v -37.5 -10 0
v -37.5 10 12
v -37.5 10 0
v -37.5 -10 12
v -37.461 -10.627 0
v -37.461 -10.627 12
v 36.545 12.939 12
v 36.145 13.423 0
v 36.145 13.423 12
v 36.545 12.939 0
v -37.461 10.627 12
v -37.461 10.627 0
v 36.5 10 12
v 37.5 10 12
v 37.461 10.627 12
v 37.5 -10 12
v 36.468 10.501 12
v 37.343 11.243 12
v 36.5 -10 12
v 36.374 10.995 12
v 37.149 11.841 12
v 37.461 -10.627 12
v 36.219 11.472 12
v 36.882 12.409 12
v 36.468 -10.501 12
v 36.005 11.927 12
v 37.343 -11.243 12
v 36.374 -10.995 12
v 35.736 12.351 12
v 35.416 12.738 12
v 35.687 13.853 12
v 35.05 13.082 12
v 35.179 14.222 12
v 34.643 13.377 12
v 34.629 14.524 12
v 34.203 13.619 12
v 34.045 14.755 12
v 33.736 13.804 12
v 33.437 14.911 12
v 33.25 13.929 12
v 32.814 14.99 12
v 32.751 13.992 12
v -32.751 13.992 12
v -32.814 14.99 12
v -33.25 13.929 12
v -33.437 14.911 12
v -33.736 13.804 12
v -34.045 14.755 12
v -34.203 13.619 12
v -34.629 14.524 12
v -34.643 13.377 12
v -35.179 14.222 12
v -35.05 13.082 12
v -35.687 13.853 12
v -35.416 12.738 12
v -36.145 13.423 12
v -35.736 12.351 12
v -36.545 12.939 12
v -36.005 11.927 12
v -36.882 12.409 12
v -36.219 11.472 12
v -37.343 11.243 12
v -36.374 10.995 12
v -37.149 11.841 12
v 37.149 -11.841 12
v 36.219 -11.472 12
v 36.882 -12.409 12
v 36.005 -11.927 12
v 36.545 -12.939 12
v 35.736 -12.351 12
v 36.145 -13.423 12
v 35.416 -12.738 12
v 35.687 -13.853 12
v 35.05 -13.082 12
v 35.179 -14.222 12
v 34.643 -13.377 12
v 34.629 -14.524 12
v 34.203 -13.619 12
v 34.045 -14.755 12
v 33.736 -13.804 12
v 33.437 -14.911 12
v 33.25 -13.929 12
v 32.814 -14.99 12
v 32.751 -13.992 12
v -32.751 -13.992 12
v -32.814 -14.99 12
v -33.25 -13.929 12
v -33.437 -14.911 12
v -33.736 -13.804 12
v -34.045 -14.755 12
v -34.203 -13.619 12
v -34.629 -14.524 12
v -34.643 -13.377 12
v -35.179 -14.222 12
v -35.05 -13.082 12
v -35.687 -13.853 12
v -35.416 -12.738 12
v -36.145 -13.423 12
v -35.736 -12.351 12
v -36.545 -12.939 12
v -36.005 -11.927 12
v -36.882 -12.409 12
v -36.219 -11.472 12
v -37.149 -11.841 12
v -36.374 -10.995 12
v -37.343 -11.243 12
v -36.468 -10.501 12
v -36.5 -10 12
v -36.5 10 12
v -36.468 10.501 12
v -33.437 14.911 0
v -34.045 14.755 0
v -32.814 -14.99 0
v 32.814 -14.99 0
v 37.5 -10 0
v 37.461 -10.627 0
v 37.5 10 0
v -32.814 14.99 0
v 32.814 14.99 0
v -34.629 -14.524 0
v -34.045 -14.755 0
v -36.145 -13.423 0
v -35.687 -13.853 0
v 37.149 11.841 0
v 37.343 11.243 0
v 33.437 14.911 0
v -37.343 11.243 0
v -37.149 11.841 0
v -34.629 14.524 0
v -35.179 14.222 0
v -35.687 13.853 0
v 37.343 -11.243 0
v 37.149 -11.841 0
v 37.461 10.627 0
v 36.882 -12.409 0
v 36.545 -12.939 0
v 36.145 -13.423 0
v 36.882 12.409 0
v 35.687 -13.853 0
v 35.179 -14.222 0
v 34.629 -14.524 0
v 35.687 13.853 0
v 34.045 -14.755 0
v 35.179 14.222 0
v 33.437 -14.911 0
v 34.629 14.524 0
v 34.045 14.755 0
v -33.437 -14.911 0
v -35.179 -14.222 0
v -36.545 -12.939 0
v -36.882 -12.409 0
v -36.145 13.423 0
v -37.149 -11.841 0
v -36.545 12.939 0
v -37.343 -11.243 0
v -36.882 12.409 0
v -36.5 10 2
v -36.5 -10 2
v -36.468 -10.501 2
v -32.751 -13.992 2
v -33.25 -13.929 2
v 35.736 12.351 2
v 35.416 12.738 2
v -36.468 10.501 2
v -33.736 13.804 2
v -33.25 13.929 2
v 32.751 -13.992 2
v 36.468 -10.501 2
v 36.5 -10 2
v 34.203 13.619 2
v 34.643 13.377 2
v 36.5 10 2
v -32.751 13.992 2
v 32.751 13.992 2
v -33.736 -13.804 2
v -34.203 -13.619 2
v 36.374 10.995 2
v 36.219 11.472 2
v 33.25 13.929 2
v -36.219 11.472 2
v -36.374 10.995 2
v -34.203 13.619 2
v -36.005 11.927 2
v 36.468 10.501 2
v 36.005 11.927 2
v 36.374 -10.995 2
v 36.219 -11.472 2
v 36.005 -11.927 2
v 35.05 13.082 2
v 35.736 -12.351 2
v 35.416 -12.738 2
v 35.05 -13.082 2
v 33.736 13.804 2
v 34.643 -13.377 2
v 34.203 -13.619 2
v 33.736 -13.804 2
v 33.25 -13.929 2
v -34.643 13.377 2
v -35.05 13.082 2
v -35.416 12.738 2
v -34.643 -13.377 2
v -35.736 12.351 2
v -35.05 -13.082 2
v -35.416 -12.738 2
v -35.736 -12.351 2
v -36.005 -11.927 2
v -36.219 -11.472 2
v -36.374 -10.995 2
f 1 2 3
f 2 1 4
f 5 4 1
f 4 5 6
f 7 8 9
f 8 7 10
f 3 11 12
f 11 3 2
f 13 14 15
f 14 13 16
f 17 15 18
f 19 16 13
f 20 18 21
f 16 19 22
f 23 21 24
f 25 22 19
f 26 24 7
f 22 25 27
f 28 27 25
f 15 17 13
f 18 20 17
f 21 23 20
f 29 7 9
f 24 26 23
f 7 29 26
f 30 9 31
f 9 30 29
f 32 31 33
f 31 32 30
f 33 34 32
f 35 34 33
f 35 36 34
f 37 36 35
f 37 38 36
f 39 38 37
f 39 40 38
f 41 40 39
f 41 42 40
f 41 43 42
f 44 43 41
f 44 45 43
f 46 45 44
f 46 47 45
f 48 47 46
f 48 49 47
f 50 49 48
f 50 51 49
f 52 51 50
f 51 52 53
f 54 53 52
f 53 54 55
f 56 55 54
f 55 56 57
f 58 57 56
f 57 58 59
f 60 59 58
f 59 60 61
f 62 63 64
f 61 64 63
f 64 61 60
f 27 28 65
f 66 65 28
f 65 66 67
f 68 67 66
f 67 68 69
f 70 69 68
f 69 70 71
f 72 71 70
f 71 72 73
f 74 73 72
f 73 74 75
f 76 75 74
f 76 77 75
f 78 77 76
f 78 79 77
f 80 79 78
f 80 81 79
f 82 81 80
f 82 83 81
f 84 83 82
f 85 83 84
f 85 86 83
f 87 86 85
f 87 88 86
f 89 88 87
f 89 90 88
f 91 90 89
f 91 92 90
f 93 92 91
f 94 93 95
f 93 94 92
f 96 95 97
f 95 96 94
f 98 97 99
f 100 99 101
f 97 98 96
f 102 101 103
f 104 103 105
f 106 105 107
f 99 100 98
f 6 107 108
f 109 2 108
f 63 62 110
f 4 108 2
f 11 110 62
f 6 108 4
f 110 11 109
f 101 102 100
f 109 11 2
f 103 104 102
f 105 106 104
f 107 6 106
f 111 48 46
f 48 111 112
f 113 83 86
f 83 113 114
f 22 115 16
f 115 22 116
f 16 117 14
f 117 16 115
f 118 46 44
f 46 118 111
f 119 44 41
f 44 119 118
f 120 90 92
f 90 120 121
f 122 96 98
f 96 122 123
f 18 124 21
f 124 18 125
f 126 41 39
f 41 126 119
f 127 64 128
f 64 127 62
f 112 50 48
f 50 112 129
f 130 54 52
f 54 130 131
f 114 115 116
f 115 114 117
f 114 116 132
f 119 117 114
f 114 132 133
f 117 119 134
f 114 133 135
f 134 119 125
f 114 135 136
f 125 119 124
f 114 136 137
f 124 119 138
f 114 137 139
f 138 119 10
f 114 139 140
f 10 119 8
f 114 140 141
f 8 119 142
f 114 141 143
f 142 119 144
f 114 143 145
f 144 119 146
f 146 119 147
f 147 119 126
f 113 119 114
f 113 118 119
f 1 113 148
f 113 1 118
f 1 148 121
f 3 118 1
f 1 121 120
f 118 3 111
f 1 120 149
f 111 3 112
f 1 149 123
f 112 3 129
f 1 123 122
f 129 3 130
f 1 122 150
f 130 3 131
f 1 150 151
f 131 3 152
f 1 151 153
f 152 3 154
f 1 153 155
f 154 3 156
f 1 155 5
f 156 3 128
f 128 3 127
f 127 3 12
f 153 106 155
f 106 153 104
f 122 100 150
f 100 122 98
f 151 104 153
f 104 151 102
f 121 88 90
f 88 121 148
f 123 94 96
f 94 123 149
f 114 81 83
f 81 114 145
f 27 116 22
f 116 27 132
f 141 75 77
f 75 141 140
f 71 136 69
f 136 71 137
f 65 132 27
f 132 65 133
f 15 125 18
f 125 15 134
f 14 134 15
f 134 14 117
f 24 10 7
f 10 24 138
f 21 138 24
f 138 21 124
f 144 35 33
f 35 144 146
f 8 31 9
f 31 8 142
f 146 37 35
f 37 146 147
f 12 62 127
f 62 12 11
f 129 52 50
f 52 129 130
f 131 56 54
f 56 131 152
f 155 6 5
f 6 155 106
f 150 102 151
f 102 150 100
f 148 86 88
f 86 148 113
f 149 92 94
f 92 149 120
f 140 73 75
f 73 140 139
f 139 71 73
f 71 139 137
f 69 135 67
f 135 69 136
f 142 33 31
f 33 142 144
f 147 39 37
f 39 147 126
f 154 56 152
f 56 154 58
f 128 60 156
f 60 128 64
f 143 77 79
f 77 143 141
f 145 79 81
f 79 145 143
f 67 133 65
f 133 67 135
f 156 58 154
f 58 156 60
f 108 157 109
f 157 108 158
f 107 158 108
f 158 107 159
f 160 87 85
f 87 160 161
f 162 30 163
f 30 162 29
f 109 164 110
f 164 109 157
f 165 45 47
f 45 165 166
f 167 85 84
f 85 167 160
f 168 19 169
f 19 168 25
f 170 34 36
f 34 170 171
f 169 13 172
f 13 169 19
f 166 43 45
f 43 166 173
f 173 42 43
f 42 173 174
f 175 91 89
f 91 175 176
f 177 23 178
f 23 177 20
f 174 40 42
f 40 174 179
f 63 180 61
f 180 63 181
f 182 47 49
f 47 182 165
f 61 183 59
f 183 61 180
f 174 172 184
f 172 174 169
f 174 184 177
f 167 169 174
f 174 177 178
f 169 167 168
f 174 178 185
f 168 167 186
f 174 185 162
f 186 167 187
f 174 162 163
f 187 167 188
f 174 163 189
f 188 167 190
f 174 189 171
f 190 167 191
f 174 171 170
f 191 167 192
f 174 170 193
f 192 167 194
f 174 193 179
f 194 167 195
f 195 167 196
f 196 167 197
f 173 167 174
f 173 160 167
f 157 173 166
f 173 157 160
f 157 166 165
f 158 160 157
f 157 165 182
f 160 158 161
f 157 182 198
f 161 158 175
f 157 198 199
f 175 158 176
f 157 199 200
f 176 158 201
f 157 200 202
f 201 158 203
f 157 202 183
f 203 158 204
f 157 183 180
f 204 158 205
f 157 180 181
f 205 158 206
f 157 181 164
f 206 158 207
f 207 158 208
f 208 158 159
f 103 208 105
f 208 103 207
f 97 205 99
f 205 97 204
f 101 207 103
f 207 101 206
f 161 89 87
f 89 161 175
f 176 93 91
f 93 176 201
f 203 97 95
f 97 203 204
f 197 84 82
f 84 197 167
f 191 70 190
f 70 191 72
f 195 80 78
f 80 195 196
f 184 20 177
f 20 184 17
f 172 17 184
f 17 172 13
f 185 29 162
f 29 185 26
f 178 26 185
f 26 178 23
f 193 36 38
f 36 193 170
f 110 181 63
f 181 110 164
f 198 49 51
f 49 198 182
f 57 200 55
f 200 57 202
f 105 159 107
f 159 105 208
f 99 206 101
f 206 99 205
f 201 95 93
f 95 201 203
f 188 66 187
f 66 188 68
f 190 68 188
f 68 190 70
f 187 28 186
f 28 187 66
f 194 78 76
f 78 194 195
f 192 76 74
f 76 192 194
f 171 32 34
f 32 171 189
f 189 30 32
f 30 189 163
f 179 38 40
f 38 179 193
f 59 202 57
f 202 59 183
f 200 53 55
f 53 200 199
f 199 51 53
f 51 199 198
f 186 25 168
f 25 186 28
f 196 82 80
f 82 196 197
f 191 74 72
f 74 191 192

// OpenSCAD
$fn = 50;


difference() {
	union() {
		hull() {
			translate(v = [-32.5000000000, 10.0000000000, 0]) {
				cylinder(h = 12, r = 5);
			}
			translate(v = [32.5000000000, 10.0000000000, 0]) {
				cylinder(h = 12, r = 5);
			}
			translate(v = [-32.5000000000, -10.0000000000, 0]) {
				cylinder(h = 12, r = 5);
			}
			translate(v = [32.5000000000, -10.0000000000, 0]) {
				cylinder(h = 12, r = 5);
			}
		}
	}
	union() {
		translate(v = [0, 0, 2]) {
			#hull() {
				translate(v = [-32.5000000000, 10.0000000000, 0]) {
					cylinder(h = 10, r = 4);
				}
				translate(v = [32.5000000000, 10.0000000000, 0]) {
					cylinder(h = 10, r = 4);
				}
				translate(v = [-32.5000000000, -10.0000000000, 0]) {
					cylinder(h = 10, r = 4);
				}
				translate(v = [32.5000000000, -10.0000000000, 0]) {
					cylinder(h = 10, r = 4);
				}
			}
		}
	}
}
